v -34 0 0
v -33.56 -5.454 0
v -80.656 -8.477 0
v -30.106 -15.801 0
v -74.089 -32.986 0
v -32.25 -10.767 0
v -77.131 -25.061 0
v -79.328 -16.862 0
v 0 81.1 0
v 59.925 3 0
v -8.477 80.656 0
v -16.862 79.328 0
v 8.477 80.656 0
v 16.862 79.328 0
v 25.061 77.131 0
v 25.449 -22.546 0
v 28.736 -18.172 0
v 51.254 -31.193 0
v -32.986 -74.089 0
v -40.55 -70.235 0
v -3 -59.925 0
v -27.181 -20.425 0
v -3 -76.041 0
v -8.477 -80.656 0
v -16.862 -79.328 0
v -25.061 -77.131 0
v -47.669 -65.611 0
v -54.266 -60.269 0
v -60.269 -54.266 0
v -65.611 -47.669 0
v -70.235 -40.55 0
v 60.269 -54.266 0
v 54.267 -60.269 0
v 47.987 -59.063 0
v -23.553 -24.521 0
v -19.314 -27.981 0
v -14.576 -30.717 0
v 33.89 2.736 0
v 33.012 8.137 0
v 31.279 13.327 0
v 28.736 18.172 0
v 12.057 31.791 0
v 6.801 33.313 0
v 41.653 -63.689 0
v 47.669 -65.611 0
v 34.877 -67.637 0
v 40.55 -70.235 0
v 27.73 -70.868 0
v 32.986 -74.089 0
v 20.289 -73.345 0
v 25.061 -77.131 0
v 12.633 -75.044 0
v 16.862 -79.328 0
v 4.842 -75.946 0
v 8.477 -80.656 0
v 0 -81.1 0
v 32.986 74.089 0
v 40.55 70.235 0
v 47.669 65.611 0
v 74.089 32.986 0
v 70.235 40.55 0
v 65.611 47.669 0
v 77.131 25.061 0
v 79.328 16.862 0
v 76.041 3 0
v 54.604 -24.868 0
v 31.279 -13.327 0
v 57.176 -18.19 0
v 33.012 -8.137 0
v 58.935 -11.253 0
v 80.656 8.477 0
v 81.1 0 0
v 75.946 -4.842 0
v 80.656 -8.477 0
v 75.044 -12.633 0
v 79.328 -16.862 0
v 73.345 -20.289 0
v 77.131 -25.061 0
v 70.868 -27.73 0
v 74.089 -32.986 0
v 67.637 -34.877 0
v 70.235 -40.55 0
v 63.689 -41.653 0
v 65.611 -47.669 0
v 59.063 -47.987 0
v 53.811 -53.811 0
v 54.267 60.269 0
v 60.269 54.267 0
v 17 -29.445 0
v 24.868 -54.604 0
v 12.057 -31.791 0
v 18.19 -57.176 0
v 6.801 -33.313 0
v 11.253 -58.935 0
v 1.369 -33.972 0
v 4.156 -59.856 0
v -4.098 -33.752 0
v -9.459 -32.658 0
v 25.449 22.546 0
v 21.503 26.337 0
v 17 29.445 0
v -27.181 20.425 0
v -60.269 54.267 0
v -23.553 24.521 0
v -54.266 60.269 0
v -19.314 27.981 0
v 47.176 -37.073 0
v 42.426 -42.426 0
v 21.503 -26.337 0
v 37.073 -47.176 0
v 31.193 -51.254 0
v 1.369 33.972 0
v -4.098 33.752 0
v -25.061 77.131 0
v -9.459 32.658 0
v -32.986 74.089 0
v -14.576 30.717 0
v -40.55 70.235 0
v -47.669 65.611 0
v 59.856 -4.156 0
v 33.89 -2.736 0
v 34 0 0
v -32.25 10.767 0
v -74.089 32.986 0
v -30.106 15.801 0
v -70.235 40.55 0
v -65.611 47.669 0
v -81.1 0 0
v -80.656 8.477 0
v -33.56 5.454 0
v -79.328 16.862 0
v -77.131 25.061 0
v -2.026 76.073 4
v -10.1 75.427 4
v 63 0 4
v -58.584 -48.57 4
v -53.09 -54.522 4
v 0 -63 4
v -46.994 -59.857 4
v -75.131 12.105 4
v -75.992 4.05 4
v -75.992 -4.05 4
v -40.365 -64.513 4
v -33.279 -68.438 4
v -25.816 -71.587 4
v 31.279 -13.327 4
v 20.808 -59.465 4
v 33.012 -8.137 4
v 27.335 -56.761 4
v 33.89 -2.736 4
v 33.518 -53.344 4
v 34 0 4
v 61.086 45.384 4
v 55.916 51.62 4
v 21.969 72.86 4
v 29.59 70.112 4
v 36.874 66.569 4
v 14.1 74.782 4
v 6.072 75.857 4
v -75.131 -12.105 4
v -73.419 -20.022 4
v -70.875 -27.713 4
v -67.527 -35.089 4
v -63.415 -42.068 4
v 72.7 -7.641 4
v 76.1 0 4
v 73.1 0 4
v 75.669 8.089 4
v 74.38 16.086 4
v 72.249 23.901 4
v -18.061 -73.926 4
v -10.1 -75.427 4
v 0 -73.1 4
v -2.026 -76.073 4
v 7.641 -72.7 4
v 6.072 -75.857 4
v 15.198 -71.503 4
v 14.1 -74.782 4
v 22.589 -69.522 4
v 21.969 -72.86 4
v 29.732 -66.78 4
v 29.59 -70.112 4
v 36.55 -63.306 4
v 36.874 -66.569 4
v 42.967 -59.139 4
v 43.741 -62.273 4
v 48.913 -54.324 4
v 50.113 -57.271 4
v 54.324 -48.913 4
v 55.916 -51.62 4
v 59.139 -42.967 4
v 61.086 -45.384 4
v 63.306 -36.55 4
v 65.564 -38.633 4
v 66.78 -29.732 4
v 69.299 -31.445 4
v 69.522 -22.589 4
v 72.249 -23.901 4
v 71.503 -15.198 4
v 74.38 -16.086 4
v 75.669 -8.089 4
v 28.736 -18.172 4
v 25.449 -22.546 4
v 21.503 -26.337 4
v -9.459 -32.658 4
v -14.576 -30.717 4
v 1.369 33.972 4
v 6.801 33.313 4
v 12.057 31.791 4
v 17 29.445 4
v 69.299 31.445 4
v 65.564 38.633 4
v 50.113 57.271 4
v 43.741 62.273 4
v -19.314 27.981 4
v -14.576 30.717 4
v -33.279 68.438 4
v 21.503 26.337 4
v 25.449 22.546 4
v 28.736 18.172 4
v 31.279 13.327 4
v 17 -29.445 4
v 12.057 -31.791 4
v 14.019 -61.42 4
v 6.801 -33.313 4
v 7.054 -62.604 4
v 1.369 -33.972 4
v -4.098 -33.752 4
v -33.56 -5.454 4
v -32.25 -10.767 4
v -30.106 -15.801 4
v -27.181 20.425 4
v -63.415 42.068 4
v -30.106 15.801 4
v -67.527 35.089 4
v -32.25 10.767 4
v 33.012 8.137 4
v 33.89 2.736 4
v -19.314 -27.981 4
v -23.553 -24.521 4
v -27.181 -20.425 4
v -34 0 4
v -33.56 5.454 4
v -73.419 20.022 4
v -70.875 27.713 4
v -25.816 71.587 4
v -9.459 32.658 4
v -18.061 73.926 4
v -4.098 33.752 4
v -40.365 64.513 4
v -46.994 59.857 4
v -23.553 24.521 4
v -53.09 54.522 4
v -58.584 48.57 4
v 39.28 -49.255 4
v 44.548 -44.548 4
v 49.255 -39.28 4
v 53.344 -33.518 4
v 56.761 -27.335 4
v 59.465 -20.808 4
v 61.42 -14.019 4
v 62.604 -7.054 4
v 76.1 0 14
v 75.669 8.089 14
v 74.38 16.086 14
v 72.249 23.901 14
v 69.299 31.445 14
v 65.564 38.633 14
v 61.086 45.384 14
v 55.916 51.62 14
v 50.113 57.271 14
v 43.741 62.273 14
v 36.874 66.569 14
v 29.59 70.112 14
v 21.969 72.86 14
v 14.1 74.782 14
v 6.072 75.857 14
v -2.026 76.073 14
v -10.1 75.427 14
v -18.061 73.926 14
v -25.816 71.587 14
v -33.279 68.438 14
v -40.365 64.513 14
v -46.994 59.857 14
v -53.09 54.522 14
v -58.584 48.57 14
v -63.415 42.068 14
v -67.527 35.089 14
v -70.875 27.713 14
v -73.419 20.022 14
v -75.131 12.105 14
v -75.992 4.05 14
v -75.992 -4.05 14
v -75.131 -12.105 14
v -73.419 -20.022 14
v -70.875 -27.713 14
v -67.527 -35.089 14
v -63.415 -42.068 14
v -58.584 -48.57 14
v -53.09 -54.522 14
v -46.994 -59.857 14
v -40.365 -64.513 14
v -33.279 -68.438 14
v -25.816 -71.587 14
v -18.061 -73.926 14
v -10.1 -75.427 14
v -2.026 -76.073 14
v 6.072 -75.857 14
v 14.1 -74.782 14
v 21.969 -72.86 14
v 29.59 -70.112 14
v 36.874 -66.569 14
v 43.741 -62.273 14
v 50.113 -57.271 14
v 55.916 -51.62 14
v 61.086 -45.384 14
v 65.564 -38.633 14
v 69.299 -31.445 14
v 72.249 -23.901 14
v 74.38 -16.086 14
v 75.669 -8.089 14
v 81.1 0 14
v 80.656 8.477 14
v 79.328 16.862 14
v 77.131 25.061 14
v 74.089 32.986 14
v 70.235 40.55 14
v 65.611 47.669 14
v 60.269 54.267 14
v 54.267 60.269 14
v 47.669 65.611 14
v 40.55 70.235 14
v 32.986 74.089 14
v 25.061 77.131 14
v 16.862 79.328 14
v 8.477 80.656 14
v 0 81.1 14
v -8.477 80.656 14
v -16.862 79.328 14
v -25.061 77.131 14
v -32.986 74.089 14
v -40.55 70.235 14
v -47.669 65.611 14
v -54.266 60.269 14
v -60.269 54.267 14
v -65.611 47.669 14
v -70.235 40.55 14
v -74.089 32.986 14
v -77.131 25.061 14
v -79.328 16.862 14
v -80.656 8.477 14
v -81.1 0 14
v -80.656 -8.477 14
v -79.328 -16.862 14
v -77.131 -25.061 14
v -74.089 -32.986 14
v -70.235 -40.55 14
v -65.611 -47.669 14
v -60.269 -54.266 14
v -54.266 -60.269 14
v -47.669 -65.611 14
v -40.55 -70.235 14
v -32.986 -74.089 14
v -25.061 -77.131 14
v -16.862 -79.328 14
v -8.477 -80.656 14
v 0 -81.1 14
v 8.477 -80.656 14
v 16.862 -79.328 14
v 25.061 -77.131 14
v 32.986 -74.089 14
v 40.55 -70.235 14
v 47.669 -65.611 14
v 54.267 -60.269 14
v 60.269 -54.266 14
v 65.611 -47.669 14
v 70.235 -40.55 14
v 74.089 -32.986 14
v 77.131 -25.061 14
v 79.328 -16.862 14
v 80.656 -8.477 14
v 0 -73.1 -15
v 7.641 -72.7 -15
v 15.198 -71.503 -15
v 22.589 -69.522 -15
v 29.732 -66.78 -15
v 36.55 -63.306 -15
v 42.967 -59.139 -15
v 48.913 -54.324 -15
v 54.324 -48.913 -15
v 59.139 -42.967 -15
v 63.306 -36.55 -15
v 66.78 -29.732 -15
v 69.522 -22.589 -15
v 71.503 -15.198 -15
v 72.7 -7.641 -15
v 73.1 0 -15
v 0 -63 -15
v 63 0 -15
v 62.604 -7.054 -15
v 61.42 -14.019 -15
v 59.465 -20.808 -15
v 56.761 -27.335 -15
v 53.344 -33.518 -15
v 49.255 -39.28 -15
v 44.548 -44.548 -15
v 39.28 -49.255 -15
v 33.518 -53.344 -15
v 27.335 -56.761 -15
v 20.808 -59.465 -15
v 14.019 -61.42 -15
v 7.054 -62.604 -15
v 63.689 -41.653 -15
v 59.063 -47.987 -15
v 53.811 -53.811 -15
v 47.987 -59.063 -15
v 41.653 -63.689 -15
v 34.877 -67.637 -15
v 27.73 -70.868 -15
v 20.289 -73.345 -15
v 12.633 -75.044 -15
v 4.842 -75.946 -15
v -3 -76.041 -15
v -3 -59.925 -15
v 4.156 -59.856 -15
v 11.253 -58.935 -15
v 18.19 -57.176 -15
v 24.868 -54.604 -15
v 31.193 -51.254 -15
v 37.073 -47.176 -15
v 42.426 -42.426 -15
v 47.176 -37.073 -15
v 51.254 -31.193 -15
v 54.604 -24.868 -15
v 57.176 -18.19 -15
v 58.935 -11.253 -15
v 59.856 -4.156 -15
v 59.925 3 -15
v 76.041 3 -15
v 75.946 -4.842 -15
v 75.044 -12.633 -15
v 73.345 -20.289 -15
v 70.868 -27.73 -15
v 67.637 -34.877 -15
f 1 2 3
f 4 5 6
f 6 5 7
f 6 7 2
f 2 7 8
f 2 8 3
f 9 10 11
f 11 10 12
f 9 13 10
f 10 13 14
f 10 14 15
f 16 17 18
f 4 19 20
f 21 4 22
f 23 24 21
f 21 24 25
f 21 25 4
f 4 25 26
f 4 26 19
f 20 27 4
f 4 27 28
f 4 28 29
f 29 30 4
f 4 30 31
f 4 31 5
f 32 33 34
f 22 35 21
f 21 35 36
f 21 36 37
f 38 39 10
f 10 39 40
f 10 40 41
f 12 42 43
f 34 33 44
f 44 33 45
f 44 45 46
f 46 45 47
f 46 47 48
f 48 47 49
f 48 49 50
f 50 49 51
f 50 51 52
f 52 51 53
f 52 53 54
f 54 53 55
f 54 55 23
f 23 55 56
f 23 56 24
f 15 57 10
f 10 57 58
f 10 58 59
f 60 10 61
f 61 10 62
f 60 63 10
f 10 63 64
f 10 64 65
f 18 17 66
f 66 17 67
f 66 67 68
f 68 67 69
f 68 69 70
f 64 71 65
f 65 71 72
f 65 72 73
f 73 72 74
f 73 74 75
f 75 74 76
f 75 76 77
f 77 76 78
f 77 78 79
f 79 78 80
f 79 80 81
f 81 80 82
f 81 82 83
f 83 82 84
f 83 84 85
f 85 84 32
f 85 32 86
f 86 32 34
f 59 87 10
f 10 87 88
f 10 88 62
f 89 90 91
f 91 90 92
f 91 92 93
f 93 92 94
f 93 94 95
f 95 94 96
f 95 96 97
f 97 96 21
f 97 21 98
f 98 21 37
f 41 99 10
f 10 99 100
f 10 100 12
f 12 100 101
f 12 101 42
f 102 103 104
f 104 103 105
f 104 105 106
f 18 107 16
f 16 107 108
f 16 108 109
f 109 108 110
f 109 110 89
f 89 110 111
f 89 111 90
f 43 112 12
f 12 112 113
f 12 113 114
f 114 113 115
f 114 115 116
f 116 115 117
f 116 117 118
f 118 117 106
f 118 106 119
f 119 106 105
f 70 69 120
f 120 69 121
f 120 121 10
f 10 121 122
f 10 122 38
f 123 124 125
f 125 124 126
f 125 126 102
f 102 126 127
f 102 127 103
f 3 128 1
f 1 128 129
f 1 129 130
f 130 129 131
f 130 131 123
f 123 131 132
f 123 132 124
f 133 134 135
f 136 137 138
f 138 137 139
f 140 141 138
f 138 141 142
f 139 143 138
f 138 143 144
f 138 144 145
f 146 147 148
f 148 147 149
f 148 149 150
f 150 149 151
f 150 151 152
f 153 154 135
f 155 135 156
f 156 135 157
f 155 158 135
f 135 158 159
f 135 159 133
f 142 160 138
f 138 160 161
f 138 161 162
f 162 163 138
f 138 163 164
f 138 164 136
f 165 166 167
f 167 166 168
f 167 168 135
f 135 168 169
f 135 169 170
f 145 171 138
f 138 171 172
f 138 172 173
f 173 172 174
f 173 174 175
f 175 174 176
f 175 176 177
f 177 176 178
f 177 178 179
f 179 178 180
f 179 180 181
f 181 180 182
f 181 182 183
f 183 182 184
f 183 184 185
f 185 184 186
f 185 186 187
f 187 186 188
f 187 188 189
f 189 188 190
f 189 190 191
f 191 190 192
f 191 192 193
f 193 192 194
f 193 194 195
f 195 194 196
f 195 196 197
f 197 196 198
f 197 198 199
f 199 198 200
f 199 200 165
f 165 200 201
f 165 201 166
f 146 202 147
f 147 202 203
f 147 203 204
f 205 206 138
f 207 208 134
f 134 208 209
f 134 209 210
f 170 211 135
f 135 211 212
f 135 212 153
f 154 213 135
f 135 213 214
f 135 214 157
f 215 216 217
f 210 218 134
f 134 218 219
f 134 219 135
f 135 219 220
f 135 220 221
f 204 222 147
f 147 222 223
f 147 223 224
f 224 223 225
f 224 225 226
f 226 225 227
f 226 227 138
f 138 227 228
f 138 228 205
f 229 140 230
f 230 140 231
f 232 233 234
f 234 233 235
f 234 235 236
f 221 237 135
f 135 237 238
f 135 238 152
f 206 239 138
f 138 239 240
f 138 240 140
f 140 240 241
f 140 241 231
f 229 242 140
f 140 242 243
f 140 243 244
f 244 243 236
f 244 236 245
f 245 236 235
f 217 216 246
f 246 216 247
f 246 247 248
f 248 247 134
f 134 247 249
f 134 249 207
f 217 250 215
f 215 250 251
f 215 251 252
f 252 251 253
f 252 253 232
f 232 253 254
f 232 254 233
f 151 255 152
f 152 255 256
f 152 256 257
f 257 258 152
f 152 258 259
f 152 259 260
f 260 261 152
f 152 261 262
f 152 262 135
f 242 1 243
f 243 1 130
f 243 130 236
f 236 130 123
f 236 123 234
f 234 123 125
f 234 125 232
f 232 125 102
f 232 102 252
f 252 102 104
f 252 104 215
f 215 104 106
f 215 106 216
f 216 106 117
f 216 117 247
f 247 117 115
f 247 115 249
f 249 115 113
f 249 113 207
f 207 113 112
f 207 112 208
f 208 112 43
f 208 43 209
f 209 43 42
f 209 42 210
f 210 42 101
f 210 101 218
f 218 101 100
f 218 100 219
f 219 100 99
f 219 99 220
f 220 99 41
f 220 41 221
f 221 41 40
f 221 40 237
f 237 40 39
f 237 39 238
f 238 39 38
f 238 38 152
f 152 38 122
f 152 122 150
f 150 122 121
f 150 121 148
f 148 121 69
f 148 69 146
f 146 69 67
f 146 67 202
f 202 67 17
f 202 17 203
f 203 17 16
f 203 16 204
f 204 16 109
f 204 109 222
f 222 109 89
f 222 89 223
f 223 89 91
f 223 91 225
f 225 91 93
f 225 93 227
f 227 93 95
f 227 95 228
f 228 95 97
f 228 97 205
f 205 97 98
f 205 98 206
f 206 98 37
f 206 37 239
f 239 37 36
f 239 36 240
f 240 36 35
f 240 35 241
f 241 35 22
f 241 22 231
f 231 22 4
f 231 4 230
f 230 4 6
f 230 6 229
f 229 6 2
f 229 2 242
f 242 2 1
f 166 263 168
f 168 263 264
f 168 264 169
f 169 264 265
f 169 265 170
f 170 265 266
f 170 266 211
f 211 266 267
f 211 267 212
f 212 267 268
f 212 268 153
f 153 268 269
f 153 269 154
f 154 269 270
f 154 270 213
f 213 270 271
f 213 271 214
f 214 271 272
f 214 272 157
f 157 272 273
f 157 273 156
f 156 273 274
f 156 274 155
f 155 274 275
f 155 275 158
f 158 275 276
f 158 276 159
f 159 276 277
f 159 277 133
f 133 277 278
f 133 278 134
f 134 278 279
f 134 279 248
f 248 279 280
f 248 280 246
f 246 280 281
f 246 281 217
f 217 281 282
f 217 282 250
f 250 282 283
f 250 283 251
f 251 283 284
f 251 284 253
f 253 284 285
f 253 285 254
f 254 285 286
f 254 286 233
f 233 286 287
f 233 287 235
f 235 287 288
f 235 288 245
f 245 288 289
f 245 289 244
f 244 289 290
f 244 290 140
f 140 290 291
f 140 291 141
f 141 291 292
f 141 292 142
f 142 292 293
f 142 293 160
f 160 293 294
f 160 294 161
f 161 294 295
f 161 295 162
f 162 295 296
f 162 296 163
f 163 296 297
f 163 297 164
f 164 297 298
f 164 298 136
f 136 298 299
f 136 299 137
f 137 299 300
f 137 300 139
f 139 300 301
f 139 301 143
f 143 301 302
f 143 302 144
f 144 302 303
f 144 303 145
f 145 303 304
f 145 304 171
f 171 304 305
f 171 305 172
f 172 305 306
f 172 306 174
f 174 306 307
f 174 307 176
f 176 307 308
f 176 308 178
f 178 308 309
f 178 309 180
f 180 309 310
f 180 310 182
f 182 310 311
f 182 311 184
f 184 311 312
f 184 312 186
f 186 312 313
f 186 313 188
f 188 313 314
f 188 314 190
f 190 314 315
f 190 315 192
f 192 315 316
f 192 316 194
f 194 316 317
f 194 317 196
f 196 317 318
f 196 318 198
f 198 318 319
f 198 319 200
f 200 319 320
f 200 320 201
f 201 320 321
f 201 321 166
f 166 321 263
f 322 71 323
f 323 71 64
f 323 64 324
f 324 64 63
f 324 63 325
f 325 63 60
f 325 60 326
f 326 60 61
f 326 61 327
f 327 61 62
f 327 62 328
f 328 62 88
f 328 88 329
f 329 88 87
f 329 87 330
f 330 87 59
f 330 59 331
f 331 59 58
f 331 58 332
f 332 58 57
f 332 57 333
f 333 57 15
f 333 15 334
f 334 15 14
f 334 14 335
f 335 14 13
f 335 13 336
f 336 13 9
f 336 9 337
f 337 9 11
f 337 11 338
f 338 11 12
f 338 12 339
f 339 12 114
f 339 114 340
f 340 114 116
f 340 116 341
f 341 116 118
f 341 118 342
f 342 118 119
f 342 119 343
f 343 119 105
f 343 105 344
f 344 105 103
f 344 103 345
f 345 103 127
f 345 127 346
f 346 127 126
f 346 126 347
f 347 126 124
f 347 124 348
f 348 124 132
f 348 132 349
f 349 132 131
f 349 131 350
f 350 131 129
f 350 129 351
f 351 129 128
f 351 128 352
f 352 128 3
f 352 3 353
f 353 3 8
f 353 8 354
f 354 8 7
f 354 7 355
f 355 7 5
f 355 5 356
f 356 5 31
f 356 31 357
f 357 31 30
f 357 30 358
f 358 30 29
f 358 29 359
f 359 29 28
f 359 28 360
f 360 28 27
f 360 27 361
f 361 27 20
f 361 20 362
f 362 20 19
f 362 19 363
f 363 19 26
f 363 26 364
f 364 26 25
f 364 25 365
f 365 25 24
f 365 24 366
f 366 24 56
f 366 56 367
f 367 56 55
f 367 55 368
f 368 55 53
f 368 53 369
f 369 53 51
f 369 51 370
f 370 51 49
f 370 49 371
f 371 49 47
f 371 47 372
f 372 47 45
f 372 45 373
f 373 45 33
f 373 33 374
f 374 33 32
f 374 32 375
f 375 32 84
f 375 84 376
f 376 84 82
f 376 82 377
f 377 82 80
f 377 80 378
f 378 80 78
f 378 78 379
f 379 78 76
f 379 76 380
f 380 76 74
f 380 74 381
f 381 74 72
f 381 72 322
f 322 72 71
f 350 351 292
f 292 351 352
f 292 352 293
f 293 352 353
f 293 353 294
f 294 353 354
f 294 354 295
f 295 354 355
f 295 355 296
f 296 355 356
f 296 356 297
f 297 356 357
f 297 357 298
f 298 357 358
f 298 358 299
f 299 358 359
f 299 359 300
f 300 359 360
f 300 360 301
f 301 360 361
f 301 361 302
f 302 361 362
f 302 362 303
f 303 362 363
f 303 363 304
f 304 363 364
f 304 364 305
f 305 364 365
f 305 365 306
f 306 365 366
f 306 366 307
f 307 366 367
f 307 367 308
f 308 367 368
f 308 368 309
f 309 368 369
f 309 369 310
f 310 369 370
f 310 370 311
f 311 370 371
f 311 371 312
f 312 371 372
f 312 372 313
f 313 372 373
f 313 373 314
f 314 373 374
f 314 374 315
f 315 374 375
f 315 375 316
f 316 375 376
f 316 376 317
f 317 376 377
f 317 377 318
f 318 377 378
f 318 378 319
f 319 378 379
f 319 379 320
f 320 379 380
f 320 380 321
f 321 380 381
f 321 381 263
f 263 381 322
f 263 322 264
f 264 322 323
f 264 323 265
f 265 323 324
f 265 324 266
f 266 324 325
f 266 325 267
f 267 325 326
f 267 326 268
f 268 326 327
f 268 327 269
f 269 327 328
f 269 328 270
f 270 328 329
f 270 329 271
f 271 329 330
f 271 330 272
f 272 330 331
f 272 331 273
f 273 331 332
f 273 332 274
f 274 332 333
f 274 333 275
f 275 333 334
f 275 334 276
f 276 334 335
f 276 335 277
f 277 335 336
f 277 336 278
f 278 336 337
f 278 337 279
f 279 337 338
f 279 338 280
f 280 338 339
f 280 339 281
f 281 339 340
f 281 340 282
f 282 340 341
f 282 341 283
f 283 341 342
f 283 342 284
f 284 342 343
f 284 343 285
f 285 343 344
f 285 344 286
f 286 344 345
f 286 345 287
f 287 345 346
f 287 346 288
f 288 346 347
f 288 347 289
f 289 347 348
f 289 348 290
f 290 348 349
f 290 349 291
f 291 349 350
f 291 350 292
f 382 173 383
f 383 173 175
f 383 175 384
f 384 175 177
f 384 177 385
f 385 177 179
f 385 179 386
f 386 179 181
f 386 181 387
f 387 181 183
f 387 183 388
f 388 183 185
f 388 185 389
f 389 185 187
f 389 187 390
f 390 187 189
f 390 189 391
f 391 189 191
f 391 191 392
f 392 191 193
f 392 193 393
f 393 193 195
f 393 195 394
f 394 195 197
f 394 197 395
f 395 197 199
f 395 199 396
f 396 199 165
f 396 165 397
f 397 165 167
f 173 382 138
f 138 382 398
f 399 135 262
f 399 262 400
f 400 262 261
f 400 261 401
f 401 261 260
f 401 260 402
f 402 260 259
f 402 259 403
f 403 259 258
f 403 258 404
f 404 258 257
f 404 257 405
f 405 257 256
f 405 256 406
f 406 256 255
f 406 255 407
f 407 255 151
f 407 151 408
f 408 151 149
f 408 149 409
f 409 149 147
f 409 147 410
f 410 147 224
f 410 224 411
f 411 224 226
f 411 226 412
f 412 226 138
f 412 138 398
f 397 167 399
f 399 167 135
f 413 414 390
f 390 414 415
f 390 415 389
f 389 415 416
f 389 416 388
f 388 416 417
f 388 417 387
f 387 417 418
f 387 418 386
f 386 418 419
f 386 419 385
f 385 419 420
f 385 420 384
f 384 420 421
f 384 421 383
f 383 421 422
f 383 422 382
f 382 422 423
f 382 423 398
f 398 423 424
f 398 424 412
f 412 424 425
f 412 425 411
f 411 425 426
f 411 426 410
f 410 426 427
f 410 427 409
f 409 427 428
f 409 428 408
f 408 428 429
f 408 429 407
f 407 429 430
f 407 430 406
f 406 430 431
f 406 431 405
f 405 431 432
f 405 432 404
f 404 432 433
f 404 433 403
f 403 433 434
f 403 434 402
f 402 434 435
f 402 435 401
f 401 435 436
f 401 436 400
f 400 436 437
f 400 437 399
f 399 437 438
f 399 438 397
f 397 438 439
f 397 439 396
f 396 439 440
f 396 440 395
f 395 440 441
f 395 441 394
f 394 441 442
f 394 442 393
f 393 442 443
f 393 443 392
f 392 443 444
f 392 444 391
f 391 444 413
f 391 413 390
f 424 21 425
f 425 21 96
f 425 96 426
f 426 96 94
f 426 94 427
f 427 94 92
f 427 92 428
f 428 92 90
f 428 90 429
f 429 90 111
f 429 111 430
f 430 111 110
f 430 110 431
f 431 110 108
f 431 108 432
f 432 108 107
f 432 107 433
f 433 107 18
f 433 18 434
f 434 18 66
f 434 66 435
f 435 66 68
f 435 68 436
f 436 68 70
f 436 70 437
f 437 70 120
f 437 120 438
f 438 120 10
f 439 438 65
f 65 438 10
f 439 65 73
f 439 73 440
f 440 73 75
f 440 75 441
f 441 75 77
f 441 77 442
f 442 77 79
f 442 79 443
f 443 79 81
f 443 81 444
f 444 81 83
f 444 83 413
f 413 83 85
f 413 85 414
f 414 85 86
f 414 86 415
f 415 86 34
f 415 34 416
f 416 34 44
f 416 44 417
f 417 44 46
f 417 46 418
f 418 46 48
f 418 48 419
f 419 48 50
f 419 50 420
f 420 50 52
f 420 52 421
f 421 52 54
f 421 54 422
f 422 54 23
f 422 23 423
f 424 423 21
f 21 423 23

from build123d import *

# Parameters (mm, degrees)
SKETCH_1_R           = 76.1
SKETCH_1_R_2         = 34
EXTRUDE_1_DEPTH      = 4
EXTRUDE_2_DEPTH      = 10
EXTRUDE_2_DEPTH_BACK = 4
SKETCH_2_R           = 81.1
SKETCH_2_R_2         = 76.1
CUT_EXTRUDE_1_DEPTH  = 5
EXTRUDE_3_DEPTH      = 15


with BuildPart() as part:
    # 스케치1 → 보스-돌출1 (new body)
    with BuildSketch(Plane.XY):
        Circle(SKETCH_1_R)
        Circle(SKETCH_1_R_2, mode=Mode.SUBTRACT)
    extrude(amount=EXTRUDE_1_DEPTH)

    # 스케치2 → 보스-돌출2 (add, two sides: drawn at the far end of the back side and taken through both)
    with BuildSketch(Plane.XY.offset(4).offset(-EXTRUDE_2_DEPTH_BACK)):
        Circle(SKETCH_2_R)
        Circle(SKETCH_2_R_2, mode=Mode.SUBTRACT)
    extrude(amount=EXTRUDE_2_DEPTH + EXTRUDE_2_DEPTH_BACK)

    # 스케치3 → 컷-돌출1 (cut)
    with BuildSketch(Plane.XY.offset(4)):
        with BuildLine():
            Line((63, 0), (73.1, 0))
            ThreePointArc((73.1, 0), (51.689505705, -51.689505705), (0, -73.1))
            Line((0, -73.1), (0, -63))
            ThreePointArc((0, -63), (44.547727215, -44.547727215), (63, 0))
        make_face()
    extrude(amount=-CUT_EXTRUDE_1_DEPTH, mode=Mode.SUBTRACT)

    # 스케치4 → 보스-돌출3 (add)
    with BuildSketch(Plane(origin=(0, 0, 0), x_dir=(-1, 0, 0), z_dir=(0, 0, -1))):
        with BuildLine():
            Line((-59.924953066, 3), (-76.040844288, 3))
            ThreePointArc((-76.040844288, 3), (-53.810826048, -53.810826048), (3, -76.040844288))
            Line((3, -76.040844288), (3, -59.924953066))
            ThreePointArc((3, -59.924953066), (-42.426406871, -42.426406871), (-59.924953066, 3))
        make_face()
        with BuildLine():
            Line((-63, 0), (-73.1, 0))
            ThreePointArc((-73.1, 0), (-51.689505705, -51.689505705), (0, -73.1))
            Line((0, -73.1), (0, -63))
            ThreePointArc((0, -63), (-44.547727215, -44.547727215), (-63, 0))
        make_face(mode=Mode.SUBTRACT)
    extrude(amount=EXTRUDE_3_DEPTH)


solid = part.part
